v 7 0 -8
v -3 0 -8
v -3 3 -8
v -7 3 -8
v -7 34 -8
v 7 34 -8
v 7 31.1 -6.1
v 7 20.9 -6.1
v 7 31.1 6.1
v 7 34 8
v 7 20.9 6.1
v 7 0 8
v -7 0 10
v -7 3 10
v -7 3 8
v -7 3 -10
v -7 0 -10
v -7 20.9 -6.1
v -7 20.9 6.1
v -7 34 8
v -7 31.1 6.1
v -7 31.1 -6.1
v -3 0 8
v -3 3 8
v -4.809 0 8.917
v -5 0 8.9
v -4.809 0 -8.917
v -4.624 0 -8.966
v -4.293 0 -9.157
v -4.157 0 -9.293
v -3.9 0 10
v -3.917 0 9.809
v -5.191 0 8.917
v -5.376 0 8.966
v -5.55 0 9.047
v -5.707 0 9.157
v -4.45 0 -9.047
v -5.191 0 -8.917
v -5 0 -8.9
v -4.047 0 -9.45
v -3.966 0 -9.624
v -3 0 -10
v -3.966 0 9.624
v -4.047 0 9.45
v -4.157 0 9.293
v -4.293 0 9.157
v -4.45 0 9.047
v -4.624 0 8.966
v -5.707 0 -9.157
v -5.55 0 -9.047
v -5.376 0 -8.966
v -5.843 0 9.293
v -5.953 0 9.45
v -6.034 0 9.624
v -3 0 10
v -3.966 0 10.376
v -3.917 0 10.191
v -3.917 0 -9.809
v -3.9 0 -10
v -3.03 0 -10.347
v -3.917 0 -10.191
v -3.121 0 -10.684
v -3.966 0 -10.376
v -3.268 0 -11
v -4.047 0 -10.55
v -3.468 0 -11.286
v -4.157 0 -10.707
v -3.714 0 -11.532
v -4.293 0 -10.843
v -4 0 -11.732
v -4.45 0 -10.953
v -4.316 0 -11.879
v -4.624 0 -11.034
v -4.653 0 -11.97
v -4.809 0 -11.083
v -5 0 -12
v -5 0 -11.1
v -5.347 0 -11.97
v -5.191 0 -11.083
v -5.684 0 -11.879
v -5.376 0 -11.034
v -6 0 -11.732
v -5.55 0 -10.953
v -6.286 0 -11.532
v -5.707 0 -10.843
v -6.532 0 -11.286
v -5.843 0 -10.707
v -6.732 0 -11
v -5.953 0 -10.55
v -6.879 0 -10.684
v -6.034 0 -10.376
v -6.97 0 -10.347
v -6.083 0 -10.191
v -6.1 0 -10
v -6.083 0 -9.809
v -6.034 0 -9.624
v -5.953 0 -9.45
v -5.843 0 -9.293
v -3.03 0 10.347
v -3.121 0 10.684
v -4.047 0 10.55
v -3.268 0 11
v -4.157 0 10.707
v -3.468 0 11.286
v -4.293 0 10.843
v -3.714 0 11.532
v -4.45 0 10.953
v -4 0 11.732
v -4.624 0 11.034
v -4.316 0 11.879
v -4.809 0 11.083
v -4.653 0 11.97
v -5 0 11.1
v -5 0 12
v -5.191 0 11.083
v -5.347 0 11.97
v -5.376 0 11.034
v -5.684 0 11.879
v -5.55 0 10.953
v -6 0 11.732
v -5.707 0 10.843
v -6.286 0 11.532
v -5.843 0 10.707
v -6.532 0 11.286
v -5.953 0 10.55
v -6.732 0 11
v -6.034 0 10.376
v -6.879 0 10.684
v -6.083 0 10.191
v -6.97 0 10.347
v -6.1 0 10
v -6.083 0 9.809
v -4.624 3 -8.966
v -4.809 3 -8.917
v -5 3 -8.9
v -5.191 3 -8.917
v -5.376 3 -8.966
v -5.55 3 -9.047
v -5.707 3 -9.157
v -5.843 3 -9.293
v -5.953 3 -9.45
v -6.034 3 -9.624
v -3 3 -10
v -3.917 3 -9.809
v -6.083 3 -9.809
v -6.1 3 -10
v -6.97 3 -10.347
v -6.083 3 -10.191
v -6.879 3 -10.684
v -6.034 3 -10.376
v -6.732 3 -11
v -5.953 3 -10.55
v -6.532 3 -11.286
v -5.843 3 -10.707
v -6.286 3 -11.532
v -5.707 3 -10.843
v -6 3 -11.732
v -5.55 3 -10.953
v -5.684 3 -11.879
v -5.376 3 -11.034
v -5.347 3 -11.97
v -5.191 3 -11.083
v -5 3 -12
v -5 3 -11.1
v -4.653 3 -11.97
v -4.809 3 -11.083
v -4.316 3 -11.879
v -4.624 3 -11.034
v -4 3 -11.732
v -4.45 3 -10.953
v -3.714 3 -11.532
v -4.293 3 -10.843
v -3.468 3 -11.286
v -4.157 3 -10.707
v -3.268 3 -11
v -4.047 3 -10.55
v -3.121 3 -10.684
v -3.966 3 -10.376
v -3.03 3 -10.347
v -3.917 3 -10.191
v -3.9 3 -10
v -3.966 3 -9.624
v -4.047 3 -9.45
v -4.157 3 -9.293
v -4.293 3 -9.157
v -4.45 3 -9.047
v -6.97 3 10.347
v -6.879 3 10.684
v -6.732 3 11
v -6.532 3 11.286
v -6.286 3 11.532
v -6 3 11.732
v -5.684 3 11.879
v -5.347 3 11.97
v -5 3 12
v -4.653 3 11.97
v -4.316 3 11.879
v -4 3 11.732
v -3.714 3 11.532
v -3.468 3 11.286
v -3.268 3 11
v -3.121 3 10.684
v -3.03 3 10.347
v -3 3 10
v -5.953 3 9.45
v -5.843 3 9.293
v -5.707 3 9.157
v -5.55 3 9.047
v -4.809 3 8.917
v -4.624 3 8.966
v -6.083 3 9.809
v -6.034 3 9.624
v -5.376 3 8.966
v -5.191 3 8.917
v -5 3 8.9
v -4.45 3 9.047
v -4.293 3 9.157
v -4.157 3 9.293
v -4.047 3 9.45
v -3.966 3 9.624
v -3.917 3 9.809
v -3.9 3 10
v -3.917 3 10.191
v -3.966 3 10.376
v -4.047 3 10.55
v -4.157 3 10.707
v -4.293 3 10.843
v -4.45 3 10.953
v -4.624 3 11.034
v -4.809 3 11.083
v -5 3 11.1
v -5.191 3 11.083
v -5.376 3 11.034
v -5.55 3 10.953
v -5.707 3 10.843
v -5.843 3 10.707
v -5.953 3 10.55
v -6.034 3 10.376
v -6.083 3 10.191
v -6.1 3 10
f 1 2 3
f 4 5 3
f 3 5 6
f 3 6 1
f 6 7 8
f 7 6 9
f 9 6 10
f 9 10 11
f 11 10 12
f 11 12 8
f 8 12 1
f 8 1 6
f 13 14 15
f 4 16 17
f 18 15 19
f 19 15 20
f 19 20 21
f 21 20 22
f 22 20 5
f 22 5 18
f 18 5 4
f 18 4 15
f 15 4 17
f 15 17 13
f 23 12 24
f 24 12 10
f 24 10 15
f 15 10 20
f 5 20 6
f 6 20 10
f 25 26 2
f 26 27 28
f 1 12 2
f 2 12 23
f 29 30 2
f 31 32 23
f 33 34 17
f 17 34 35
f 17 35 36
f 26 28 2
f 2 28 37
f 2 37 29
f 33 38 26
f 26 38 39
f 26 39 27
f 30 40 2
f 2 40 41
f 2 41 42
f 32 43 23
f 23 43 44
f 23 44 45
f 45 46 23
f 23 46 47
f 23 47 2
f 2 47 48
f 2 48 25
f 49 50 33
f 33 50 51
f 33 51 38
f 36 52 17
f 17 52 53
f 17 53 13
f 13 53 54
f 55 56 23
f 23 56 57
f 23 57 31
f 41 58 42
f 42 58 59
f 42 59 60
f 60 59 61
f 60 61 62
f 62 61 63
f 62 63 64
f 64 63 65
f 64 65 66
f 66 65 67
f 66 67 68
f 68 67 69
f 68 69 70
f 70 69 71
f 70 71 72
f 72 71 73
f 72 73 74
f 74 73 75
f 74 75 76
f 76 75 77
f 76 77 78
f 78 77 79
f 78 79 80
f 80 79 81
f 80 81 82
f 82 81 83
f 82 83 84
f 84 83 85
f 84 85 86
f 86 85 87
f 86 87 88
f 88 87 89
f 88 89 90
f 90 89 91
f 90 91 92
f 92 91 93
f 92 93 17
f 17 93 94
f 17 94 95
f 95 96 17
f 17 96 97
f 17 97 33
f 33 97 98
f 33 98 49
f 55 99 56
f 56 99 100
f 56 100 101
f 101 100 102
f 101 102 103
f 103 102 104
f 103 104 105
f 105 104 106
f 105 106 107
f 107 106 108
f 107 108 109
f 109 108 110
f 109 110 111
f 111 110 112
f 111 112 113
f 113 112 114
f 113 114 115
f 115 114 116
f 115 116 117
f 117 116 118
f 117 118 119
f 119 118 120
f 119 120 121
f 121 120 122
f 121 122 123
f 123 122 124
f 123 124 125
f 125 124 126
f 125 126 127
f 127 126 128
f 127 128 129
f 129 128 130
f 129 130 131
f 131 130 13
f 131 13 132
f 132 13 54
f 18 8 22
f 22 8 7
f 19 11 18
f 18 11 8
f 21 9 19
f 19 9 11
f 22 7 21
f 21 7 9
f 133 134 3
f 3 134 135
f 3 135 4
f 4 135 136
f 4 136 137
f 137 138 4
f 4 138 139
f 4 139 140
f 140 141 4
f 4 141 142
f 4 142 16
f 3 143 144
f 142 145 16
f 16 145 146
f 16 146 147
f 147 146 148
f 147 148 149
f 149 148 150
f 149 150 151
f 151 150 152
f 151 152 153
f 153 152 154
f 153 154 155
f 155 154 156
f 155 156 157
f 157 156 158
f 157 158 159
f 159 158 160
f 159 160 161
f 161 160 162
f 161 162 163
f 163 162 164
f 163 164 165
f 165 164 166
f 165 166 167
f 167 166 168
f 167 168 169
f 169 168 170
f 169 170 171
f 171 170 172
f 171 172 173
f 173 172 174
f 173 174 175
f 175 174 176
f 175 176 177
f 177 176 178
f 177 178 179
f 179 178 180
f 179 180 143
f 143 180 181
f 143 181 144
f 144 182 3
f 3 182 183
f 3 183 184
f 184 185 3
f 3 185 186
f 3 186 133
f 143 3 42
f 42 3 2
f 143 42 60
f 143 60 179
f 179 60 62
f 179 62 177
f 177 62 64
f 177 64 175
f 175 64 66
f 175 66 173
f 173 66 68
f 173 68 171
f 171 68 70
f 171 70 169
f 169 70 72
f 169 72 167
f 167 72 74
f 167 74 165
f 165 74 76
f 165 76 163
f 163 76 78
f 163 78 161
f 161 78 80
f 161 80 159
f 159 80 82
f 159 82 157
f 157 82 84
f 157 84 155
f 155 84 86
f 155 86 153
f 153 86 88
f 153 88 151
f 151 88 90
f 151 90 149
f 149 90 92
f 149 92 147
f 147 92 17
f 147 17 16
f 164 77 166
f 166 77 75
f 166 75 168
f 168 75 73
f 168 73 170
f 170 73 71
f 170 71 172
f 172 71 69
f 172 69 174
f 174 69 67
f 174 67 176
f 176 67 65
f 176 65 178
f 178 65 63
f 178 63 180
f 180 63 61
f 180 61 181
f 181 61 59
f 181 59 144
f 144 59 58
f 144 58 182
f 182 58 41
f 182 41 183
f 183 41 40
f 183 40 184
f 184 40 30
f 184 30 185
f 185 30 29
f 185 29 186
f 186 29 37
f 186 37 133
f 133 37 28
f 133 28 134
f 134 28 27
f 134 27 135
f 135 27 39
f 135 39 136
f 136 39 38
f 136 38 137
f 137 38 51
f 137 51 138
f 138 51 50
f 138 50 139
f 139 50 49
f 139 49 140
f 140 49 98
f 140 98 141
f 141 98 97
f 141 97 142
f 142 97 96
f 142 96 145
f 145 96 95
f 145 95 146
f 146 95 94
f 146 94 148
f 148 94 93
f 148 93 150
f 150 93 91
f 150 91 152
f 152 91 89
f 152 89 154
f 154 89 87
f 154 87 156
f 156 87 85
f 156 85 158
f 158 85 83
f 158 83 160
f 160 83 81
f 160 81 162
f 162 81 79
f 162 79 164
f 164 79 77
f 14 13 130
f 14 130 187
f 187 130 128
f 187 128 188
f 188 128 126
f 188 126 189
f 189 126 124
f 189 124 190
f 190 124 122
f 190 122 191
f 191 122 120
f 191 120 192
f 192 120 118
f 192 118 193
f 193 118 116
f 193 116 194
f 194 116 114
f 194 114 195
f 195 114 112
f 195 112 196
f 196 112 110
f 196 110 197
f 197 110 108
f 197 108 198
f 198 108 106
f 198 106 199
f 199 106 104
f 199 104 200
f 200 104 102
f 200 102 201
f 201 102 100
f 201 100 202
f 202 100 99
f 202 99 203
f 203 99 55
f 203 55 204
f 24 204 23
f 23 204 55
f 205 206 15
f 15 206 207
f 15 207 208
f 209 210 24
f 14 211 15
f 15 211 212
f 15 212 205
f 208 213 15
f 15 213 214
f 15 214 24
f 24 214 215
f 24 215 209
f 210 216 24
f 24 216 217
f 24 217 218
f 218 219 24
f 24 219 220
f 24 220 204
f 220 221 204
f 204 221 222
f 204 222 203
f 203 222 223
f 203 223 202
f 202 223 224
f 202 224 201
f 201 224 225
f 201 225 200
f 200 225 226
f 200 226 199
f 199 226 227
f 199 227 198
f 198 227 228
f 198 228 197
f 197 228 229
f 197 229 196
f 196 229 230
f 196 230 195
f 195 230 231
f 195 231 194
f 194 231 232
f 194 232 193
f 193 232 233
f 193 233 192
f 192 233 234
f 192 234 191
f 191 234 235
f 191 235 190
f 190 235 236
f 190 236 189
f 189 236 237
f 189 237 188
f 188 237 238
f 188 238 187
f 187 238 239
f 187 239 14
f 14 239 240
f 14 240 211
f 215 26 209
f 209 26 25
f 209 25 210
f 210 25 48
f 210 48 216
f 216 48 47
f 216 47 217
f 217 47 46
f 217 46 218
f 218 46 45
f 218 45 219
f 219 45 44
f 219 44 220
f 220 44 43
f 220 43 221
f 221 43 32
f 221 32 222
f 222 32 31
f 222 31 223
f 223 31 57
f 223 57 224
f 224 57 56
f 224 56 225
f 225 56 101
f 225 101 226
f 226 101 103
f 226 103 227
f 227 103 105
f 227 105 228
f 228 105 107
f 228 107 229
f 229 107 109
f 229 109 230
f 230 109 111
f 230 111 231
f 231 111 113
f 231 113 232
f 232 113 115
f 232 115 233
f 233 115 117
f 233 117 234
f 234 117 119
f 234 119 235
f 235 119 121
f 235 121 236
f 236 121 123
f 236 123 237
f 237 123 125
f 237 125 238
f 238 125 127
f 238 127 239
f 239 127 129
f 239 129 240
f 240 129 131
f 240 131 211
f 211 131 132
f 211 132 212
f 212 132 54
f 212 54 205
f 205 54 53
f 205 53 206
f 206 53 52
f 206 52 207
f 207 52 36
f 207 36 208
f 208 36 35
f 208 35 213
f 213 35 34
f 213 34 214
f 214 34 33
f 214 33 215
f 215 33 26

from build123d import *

# Parameters (mm, degrees)
SKETCH_1_W               = 14
SKETCH_1_H               = 16
EXTRUDE_1_DEPTH          = 34
CUT_EXTRUDE_1_DEPTH      = 36.623026261
CUT_EXTRUDE_1_DEPTH_BACK = 36.623026261
SKETCH_2_W               = 12.2
SKETCH_2_H               = 10.2
SKETCH_3_R               = 1.1
EXTRUDE_2_DEPTH          = 3


with BuildPart() as part:
    # 草图1 → 凸台-拉伸1 (new body)
    with BuildSketch(Plane(origin=(0, 0, 0), x_dir=(1, 0, 0), z_dir=(0, 1, 0))):
        Rectangle(SKETCH_1_W, SKETCH_1_H)
    extrude(amount=EXTRUDE_1_DEPTH)

    # 草图2 → 切除-拉伸1 (cut, two sides: drawn at the far end of the back side and taken through both)
    with BuildSketch(Plane(origin=(0, 0, 0), x_dir=(0, 0, -1), z_dir=(1, 0, 0)).offset(-CUT_EXTRUDE_1_DEPTH_BACK)):
        with Locations((0, 26)):
            Rectangle(SKETCH_2_W, SKETCH_2_H)
    extrude(amount=CUT_EXTRUDE_1_DEPTH + CUT_EXTRUDE_1_DEPTH_BACK, mode=Mode.SUBTRACT)

    # 草图3 → 凸台-拉伸2 (add)
    with BuildSketch(Plane(origin=(0, 0, 0), x_dir=(1, 0, 0), z_dir=(0, 1, 0))):
        with BuildLine():
            Line((-7, 8), (-7, 10))
            ThreePointArc((-7, 10), (-5, 12), (-3, 10))
            Line((-3, 10), (-3, 8))
            Line((-3, 8), (-7, 8))
        make_face()
        with Locations(Location((-5, 10, 0), (0, 0, 270))):
            Circle(SKETCH_3_R, mode=Mode.SUBTRACT)
    extrude_2 = extrude(amount=EXTRUDE_2_DEPTH)

    # 镜向1: 凸台-拉伸2 across plane
    add(extrude_2.mirror(Plane.XY))


solid = part.part
